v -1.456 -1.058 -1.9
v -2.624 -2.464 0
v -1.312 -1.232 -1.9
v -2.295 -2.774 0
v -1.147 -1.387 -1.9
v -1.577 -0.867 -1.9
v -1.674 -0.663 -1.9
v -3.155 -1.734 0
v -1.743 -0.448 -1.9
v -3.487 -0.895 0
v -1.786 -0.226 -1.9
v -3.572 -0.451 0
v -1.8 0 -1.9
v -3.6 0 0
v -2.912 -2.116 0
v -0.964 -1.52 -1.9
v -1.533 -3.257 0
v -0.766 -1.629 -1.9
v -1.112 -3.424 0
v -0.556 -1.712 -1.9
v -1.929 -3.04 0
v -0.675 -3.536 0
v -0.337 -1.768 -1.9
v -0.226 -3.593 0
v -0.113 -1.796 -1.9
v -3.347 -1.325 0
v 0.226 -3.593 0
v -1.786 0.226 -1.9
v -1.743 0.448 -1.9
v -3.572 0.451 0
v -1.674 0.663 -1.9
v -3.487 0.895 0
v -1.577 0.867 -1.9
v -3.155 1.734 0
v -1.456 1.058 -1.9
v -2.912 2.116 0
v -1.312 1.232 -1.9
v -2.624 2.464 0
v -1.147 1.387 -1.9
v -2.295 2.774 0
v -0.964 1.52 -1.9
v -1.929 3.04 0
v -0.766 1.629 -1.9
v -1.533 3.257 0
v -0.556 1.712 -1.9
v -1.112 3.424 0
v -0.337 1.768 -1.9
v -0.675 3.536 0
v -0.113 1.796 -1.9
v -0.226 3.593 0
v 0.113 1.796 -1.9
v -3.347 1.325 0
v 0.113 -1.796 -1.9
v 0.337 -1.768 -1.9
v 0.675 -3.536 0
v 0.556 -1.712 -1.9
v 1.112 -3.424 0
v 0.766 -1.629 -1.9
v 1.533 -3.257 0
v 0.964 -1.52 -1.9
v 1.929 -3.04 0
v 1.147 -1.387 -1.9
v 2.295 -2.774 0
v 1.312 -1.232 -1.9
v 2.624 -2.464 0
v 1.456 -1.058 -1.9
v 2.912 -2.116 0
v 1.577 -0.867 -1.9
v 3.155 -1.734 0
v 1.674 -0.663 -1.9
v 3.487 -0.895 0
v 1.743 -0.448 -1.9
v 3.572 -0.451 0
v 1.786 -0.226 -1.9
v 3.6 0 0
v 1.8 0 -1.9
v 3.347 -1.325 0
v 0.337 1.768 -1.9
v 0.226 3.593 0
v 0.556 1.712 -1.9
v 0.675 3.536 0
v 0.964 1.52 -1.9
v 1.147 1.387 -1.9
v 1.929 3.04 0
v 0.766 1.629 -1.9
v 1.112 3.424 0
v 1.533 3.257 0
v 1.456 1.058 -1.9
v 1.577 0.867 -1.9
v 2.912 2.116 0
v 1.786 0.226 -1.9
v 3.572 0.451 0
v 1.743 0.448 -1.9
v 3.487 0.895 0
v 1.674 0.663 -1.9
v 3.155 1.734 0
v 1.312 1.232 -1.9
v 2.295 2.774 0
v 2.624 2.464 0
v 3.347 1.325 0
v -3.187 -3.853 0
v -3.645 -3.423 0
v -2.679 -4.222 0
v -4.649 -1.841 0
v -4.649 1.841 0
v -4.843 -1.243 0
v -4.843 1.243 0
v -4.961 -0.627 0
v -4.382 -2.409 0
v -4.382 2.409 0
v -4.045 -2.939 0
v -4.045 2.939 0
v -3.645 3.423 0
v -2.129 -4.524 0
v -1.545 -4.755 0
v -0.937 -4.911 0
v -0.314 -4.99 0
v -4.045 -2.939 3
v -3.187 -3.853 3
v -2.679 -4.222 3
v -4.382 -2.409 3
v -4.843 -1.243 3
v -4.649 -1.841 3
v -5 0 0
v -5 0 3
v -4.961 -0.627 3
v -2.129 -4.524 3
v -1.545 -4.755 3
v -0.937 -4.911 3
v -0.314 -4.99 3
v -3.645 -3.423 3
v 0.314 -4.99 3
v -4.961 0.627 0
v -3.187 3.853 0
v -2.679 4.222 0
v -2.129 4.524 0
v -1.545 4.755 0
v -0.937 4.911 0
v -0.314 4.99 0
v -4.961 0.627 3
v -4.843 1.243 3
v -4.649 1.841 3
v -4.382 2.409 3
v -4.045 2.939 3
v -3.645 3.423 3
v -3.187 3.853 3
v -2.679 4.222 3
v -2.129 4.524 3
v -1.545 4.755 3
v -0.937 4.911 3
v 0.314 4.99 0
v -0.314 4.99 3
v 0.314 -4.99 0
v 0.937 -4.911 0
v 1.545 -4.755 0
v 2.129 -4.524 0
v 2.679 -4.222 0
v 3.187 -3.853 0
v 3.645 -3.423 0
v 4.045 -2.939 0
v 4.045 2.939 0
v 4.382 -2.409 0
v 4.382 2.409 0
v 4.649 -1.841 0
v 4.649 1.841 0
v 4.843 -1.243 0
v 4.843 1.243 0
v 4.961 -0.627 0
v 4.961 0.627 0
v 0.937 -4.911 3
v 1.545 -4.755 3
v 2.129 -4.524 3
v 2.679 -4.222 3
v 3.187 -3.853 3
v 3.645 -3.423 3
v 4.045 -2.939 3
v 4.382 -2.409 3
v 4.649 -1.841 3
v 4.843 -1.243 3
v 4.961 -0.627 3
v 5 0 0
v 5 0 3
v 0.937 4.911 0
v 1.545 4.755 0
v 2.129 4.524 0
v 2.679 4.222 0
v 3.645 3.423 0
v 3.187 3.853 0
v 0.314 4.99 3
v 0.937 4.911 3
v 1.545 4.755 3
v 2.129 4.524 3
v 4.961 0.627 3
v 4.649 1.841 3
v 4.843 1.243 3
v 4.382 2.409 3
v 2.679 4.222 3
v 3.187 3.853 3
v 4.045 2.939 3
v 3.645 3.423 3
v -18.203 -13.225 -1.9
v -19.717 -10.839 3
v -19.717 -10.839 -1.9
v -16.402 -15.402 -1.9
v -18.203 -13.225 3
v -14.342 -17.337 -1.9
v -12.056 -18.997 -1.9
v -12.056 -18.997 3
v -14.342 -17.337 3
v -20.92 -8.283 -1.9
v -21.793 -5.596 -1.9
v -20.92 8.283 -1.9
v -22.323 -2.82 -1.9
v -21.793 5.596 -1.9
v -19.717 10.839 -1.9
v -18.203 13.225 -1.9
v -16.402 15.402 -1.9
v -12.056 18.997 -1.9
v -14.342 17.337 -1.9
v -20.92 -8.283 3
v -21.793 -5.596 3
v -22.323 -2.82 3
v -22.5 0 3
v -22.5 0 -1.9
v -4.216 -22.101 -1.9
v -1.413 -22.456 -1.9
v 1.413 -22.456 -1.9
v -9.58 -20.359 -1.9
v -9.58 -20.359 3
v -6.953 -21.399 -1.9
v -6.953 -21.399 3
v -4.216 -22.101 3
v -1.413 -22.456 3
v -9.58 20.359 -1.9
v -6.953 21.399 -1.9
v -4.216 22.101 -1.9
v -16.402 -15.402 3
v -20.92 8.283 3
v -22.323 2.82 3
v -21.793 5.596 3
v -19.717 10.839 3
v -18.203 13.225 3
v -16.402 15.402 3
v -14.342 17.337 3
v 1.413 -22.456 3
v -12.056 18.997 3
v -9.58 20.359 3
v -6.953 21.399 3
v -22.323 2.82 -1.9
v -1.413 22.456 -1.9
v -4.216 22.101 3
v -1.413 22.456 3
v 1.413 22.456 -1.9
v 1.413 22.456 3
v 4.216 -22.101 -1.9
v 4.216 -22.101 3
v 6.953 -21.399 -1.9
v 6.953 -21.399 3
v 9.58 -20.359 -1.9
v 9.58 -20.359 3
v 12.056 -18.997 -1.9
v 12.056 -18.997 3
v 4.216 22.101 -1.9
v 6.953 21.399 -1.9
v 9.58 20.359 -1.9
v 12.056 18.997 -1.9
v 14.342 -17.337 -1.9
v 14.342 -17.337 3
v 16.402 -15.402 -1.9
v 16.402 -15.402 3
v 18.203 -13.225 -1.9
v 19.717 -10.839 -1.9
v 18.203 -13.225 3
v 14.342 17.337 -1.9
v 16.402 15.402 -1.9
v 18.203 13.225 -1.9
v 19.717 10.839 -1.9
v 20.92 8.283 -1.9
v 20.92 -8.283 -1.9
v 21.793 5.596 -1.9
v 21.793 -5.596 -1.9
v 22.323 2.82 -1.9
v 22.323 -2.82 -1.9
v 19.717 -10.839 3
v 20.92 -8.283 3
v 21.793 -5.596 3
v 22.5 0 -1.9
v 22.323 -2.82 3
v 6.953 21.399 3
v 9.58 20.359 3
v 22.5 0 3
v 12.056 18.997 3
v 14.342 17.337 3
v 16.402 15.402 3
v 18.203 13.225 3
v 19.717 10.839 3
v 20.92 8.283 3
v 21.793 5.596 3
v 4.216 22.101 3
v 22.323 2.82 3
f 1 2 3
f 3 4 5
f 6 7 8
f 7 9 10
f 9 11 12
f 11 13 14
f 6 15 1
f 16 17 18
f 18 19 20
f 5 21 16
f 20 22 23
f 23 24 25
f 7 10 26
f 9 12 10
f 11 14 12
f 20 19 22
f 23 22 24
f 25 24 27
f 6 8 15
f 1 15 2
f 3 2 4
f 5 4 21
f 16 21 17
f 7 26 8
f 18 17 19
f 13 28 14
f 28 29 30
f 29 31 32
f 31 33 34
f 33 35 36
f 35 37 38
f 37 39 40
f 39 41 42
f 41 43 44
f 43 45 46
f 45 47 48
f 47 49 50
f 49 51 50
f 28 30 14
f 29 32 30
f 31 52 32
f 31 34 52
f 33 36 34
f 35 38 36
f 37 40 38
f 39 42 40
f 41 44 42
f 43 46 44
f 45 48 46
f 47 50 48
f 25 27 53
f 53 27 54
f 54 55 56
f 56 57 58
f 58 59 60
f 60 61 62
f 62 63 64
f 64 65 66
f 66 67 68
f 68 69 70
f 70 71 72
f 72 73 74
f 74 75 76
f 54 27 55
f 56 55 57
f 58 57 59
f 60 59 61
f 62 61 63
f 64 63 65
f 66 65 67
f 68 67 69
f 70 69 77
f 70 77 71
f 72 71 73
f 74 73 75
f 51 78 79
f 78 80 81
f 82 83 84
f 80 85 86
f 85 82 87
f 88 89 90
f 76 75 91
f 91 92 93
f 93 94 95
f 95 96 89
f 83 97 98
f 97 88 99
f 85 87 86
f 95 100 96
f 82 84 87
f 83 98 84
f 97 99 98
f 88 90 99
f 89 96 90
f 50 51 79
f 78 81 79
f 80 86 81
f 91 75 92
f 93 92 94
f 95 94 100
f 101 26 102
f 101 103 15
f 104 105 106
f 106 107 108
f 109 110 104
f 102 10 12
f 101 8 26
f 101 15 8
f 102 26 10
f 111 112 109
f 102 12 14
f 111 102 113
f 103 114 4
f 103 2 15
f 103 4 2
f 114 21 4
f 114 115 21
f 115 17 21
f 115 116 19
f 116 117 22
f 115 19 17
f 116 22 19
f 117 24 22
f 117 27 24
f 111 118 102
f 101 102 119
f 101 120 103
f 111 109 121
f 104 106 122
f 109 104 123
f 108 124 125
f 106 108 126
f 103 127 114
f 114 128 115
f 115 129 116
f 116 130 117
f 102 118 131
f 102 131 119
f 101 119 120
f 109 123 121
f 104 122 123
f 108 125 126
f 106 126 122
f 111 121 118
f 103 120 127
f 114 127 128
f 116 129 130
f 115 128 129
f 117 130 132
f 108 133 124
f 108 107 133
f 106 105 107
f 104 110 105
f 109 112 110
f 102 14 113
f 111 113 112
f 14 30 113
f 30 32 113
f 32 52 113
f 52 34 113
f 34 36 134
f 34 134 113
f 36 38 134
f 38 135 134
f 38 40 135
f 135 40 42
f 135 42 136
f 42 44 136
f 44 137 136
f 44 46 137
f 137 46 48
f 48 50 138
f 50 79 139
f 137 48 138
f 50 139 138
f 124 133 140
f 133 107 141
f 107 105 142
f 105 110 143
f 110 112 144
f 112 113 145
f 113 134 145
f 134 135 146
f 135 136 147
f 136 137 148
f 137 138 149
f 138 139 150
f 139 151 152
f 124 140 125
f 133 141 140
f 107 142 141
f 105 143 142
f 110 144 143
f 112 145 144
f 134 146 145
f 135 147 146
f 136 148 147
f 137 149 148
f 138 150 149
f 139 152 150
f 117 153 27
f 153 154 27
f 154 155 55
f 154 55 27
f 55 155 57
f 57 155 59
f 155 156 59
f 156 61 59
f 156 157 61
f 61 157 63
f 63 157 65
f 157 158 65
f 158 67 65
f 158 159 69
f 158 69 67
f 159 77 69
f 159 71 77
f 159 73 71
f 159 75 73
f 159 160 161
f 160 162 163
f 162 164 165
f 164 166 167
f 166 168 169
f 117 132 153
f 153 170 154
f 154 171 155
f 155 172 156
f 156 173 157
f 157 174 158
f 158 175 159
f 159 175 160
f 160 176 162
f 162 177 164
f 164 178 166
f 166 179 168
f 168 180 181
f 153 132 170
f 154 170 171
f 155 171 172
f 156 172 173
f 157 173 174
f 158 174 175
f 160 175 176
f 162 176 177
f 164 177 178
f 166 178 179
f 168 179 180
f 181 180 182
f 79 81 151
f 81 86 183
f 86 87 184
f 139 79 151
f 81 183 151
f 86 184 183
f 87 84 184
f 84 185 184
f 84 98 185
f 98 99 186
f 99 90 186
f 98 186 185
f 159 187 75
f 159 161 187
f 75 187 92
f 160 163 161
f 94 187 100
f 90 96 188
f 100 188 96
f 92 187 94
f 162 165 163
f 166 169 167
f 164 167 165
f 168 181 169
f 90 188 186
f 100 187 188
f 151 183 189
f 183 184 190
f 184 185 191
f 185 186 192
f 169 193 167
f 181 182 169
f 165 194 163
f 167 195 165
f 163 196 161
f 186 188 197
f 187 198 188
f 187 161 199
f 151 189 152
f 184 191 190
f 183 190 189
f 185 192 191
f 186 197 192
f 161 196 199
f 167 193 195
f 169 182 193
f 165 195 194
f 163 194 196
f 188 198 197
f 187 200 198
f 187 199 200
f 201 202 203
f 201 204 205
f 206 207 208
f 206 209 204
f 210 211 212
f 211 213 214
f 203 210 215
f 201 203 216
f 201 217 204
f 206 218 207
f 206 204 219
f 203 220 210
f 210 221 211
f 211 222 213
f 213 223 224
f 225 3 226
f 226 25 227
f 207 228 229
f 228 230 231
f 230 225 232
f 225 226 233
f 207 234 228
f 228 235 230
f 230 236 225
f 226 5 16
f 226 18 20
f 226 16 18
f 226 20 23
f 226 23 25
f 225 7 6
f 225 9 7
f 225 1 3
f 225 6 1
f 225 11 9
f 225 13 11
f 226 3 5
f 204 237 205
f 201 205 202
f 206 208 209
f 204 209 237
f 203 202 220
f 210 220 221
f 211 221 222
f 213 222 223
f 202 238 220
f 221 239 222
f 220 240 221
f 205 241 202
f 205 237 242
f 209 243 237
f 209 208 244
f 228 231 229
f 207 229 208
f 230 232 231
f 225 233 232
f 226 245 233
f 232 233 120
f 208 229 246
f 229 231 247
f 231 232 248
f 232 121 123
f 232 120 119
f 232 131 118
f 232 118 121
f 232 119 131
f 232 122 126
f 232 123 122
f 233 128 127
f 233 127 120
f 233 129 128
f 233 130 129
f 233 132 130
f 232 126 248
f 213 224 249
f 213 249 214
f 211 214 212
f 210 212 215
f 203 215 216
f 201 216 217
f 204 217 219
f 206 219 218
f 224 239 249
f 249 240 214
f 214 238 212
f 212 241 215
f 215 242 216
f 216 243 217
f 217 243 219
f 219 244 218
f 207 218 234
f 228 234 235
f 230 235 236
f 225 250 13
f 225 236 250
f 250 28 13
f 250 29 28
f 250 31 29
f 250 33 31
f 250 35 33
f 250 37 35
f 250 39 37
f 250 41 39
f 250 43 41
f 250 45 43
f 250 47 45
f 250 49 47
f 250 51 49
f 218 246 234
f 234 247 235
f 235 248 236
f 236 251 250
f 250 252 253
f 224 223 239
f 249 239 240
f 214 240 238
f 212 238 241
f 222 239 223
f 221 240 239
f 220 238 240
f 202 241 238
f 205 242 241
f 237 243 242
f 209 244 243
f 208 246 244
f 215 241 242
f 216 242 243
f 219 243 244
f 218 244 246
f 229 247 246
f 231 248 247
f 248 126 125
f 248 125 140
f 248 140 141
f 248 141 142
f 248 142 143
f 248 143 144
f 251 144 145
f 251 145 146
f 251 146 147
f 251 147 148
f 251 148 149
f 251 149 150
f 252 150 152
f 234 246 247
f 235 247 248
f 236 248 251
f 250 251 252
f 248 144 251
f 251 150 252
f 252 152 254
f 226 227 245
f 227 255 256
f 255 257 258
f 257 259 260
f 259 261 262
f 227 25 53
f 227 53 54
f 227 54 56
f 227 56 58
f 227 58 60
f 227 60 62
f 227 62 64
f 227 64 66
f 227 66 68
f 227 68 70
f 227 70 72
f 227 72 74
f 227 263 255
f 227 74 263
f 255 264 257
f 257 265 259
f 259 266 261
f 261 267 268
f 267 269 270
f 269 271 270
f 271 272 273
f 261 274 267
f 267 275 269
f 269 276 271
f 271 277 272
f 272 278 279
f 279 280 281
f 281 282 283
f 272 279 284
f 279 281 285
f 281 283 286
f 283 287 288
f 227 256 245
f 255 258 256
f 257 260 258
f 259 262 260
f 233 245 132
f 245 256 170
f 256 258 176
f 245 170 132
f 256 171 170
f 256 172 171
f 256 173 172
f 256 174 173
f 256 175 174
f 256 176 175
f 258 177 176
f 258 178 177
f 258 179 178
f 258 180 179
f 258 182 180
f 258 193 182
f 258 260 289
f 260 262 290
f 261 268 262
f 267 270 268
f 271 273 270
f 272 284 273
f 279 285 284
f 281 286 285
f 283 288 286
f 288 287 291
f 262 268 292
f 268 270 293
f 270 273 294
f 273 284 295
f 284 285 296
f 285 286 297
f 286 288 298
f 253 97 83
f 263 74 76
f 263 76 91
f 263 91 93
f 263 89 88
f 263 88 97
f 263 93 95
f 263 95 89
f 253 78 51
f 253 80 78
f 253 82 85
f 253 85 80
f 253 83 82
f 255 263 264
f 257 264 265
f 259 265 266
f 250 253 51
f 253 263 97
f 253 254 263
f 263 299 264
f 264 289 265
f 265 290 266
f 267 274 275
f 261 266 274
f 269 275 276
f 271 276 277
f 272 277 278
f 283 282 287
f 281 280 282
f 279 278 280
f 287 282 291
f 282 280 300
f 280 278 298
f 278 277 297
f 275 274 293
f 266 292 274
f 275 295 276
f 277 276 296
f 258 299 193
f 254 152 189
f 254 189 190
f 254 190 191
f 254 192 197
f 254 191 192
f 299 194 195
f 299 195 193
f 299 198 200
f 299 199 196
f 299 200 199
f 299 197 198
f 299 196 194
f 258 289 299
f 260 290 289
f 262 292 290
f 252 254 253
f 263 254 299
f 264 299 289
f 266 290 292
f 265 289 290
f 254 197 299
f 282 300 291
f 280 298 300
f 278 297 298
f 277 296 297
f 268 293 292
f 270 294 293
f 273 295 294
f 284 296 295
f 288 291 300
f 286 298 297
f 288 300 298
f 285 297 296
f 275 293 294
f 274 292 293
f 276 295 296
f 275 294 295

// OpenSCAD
$fn = 50;


difference() {
	union() {
		translate(v = [0, 0, -1.9000000000]) {
			cylinder(h = 4.9000000000, r = 22.5000000000);
		}
	}
	union() {
		translate(v = [0, 0, 0]) {
			rotate(a = [0, 0, 0]) {
				difference() {
					union() {
						translate(v = [0, 0, -4.9000000000]) {
							cylinder(h = 4.9000000000, r = 1.5000000000);
						}
						translate(v = [0, 0, -1.9000000000]) {
							cylinder(h = 1.9000000000, r1 = 1.8000000000, r2 = 3.6000000000);
						}
						translate(v = [0, 0, -4.9000000000]) {
							cylinder(h = 4.9000000000, r = 1.8000000000);
						}
						translate(v = [0, 0, -4.9000000000]) {
							cylinder(h = 4.9000000000, r = 1.5000000000);
						}
					}
					union();
				}
			}
		}
		#cylinder(h = 3, r = 5.0000000000);
	}
}
